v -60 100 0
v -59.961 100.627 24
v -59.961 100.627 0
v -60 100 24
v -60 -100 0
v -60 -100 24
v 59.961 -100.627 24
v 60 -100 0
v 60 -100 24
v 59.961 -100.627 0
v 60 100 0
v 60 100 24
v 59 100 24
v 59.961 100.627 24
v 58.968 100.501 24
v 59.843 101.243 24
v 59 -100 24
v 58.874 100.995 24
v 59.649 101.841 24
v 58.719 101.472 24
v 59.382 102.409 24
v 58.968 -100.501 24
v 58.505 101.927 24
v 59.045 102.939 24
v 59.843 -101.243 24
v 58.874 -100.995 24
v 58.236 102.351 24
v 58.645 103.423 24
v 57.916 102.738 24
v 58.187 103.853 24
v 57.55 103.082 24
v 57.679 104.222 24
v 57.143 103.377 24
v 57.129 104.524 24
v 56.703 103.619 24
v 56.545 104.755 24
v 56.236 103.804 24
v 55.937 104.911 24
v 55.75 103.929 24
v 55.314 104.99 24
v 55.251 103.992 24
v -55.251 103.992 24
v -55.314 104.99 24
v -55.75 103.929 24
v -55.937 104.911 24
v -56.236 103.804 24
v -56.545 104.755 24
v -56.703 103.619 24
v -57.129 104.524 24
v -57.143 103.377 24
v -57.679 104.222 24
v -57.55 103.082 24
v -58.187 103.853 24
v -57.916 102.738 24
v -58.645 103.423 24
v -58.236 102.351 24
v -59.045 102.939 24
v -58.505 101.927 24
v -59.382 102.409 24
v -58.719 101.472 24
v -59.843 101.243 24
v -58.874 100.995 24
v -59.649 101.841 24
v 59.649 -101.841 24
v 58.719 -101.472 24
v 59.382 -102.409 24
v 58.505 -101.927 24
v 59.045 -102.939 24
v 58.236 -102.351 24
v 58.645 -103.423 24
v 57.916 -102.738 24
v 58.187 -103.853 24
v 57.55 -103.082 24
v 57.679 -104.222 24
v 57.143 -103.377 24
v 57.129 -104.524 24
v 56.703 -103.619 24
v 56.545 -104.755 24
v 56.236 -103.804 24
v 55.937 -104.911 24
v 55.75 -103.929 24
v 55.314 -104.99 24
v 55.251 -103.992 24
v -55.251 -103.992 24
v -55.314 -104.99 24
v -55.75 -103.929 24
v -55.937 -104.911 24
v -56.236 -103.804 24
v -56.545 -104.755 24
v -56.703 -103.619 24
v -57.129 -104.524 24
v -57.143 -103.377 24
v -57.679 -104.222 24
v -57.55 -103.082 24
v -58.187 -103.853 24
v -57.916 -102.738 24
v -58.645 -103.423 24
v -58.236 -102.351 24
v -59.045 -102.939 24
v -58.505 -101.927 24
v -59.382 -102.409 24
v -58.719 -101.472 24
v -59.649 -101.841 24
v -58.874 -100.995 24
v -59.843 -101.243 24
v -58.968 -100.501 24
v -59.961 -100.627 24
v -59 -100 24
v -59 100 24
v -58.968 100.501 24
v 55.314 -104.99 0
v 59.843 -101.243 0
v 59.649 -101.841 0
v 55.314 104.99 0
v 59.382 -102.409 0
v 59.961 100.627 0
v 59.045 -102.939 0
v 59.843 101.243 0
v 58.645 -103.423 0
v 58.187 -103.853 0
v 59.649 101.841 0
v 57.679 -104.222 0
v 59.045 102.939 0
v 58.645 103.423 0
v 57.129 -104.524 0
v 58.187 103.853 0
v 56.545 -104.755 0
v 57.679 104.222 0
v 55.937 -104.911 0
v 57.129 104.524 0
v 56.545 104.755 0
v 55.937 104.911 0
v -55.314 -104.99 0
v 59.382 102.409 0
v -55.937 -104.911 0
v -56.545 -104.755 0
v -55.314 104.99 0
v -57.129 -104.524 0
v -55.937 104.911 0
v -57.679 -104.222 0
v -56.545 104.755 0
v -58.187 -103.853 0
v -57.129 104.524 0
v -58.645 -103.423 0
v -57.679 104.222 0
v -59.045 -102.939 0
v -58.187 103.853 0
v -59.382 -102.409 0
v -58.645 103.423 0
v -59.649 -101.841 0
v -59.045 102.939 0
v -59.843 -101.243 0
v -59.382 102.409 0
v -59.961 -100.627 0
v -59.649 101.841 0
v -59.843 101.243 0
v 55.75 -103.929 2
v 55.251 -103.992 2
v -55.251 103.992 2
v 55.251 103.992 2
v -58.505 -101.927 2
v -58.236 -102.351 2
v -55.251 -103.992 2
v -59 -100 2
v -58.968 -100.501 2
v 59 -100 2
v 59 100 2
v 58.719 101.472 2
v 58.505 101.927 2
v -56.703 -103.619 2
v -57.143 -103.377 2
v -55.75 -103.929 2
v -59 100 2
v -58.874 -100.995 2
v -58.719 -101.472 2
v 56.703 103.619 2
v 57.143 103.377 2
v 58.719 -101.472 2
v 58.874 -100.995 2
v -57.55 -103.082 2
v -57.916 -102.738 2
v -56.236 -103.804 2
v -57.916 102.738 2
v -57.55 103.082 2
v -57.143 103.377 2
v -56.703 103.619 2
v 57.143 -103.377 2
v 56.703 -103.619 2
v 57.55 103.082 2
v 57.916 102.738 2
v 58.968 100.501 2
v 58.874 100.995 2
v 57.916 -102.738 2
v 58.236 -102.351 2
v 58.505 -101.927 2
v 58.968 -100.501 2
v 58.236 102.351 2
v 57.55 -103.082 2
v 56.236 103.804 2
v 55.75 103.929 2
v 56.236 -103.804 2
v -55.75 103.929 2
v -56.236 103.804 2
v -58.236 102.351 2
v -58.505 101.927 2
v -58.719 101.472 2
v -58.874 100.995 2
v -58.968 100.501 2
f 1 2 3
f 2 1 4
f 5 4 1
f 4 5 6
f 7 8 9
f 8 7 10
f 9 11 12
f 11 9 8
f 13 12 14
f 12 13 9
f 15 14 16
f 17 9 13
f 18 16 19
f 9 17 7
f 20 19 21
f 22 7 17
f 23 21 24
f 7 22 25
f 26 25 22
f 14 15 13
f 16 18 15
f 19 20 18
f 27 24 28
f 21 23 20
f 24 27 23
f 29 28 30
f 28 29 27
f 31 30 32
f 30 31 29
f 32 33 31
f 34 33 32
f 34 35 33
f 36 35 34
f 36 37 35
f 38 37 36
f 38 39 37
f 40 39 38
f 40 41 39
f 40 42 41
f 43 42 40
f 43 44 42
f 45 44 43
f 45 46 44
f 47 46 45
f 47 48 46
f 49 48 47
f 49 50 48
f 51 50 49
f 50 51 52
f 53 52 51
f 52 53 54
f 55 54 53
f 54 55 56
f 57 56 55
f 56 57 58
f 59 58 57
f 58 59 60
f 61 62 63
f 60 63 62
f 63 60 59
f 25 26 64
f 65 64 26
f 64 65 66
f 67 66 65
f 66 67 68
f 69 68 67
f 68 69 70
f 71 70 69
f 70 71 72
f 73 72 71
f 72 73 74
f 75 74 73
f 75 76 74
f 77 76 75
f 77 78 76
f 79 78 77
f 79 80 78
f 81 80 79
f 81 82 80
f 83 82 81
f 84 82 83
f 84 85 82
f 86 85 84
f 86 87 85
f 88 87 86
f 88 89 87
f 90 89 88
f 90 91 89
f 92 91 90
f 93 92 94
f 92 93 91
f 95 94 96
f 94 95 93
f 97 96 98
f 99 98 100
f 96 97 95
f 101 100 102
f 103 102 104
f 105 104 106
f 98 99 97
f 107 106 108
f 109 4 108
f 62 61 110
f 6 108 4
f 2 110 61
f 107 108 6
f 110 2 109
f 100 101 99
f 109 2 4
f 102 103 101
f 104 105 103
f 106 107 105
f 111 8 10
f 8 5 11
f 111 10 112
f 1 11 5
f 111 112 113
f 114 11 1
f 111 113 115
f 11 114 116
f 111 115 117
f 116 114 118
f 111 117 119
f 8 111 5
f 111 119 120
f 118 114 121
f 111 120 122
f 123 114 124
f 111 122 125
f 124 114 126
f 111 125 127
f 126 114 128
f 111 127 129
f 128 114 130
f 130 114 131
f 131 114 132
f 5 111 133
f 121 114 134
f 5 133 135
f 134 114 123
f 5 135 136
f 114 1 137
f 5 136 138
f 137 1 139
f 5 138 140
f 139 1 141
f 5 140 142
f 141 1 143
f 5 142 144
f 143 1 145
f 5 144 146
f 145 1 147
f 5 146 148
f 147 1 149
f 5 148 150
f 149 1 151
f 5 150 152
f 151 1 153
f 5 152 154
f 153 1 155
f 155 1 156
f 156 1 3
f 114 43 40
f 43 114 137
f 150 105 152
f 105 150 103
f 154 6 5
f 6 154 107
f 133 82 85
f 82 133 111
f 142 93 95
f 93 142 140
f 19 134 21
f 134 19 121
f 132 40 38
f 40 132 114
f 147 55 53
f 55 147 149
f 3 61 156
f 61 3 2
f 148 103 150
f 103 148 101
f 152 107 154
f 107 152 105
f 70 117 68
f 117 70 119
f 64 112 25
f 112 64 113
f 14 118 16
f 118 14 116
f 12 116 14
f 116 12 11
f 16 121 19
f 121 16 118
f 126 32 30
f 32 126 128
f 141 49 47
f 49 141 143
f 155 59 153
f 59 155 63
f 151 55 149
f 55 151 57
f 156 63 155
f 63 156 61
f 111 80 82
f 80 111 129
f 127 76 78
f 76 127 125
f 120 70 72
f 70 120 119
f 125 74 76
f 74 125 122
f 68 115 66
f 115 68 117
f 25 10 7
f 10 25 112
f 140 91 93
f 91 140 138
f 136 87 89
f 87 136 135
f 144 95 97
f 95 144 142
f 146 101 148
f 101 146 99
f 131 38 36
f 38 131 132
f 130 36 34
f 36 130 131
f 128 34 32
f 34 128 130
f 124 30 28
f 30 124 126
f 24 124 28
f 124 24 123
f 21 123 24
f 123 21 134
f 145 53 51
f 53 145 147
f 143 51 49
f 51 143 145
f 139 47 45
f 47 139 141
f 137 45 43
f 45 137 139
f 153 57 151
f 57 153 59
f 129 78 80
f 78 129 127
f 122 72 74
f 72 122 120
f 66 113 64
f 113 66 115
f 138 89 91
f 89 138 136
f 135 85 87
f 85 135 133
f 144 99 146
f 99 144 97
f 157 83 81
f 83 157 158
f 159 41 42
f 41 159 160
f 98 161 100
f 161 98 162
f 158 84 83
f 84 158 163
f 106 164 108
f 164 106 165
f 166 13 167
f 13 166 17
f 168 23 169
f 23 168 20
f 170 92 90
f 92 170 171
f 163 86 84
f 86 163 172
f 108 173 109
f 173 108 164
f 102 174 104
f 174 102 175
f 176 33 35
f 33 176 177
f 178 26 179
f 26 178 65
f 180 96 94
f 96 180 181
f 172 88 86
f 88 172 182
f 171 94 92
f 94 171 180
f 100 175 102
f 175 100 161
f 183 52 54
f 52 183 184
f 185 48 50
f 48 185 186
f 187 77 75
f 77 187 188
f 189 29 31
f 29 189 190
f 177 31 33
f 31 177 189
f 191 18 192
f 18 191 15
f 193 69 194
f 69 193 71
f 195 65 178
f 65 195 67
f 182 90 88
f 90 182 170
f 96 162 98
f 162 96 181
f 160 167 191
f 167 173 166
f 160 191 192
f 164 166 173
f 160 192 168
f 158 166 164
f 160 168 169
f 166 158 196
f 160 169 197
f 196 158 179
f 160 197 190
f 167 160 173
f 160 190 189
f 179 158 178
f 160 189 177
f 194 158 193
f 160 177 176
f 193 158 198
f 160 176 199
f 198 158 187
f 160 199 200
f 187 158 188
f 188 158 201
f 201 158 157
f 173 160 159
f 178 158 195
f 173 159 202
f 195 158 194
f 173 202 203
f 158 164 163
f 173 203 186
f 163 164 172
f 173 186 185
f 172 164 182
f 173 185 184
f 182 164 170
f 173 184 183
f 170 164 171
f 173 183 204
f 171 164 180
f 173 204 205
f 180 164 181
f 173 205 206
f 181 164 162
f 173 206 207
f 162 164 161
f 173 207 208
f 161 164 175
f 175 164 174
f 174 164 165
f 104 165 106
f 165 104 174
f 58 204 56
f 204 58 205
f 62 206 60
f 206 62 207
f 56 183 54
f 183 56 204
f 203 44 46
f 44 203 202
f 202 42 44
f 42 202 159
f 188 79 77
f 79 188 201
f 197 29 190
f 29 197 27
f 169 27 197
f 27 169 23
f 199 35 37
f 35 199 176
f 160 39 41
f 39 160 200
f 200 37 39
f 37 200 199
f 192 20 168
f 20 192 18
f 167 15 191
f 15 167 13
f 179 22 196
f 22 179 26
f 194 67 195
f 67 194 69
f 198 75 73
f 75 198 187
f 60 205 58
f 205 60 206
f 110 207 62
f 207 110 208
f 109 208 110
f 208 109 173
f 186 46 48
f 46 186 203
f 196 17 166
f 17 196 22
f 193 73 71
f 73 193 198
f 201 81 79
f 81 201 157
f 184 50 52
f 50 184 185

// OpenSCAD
$fn = 50;


difference() {
	union() {
		hull() {
			translate(v = [-55.0000000000, 100.0000000000, 0]) {
				cylinder(h = 24, r = 5);
			}
			translate(v = [55.0000000000, 100.0000000000, 0]) {
				cylinder(h = 24, r = 5);
			}
			translate(v = [-55.0000000000, -100.0000000000, 0]) {
				cylinder(h = 24, r = 5);
			}
			translate(v = [55.0000000000, -100.0000000000, 0]) {
				cylinder(h = 24, r = 5);
			}
		}
	}
	union() {
		translate(v = [0, 0, 2]) {
			hull() {
				translate(v = [-55.0000000000, 100.0000000000, 0]) {
					cylinder(h = 22, r = 4);
				}
				translate(v = [55.0000000000, 100.0000000000, 0]) {
					cylinder(h = 22, r = 4);
				}
				translate(v = [-55.0000000000, -100.0000000000, 0]) {
					cylinder(h = 22, r = 4);
				}
				translate(v = [55.0000000000, -100.0000000000, 0]) {
					cylinder(h = 22, r = 4);
				}
			}
		}
	}
}
